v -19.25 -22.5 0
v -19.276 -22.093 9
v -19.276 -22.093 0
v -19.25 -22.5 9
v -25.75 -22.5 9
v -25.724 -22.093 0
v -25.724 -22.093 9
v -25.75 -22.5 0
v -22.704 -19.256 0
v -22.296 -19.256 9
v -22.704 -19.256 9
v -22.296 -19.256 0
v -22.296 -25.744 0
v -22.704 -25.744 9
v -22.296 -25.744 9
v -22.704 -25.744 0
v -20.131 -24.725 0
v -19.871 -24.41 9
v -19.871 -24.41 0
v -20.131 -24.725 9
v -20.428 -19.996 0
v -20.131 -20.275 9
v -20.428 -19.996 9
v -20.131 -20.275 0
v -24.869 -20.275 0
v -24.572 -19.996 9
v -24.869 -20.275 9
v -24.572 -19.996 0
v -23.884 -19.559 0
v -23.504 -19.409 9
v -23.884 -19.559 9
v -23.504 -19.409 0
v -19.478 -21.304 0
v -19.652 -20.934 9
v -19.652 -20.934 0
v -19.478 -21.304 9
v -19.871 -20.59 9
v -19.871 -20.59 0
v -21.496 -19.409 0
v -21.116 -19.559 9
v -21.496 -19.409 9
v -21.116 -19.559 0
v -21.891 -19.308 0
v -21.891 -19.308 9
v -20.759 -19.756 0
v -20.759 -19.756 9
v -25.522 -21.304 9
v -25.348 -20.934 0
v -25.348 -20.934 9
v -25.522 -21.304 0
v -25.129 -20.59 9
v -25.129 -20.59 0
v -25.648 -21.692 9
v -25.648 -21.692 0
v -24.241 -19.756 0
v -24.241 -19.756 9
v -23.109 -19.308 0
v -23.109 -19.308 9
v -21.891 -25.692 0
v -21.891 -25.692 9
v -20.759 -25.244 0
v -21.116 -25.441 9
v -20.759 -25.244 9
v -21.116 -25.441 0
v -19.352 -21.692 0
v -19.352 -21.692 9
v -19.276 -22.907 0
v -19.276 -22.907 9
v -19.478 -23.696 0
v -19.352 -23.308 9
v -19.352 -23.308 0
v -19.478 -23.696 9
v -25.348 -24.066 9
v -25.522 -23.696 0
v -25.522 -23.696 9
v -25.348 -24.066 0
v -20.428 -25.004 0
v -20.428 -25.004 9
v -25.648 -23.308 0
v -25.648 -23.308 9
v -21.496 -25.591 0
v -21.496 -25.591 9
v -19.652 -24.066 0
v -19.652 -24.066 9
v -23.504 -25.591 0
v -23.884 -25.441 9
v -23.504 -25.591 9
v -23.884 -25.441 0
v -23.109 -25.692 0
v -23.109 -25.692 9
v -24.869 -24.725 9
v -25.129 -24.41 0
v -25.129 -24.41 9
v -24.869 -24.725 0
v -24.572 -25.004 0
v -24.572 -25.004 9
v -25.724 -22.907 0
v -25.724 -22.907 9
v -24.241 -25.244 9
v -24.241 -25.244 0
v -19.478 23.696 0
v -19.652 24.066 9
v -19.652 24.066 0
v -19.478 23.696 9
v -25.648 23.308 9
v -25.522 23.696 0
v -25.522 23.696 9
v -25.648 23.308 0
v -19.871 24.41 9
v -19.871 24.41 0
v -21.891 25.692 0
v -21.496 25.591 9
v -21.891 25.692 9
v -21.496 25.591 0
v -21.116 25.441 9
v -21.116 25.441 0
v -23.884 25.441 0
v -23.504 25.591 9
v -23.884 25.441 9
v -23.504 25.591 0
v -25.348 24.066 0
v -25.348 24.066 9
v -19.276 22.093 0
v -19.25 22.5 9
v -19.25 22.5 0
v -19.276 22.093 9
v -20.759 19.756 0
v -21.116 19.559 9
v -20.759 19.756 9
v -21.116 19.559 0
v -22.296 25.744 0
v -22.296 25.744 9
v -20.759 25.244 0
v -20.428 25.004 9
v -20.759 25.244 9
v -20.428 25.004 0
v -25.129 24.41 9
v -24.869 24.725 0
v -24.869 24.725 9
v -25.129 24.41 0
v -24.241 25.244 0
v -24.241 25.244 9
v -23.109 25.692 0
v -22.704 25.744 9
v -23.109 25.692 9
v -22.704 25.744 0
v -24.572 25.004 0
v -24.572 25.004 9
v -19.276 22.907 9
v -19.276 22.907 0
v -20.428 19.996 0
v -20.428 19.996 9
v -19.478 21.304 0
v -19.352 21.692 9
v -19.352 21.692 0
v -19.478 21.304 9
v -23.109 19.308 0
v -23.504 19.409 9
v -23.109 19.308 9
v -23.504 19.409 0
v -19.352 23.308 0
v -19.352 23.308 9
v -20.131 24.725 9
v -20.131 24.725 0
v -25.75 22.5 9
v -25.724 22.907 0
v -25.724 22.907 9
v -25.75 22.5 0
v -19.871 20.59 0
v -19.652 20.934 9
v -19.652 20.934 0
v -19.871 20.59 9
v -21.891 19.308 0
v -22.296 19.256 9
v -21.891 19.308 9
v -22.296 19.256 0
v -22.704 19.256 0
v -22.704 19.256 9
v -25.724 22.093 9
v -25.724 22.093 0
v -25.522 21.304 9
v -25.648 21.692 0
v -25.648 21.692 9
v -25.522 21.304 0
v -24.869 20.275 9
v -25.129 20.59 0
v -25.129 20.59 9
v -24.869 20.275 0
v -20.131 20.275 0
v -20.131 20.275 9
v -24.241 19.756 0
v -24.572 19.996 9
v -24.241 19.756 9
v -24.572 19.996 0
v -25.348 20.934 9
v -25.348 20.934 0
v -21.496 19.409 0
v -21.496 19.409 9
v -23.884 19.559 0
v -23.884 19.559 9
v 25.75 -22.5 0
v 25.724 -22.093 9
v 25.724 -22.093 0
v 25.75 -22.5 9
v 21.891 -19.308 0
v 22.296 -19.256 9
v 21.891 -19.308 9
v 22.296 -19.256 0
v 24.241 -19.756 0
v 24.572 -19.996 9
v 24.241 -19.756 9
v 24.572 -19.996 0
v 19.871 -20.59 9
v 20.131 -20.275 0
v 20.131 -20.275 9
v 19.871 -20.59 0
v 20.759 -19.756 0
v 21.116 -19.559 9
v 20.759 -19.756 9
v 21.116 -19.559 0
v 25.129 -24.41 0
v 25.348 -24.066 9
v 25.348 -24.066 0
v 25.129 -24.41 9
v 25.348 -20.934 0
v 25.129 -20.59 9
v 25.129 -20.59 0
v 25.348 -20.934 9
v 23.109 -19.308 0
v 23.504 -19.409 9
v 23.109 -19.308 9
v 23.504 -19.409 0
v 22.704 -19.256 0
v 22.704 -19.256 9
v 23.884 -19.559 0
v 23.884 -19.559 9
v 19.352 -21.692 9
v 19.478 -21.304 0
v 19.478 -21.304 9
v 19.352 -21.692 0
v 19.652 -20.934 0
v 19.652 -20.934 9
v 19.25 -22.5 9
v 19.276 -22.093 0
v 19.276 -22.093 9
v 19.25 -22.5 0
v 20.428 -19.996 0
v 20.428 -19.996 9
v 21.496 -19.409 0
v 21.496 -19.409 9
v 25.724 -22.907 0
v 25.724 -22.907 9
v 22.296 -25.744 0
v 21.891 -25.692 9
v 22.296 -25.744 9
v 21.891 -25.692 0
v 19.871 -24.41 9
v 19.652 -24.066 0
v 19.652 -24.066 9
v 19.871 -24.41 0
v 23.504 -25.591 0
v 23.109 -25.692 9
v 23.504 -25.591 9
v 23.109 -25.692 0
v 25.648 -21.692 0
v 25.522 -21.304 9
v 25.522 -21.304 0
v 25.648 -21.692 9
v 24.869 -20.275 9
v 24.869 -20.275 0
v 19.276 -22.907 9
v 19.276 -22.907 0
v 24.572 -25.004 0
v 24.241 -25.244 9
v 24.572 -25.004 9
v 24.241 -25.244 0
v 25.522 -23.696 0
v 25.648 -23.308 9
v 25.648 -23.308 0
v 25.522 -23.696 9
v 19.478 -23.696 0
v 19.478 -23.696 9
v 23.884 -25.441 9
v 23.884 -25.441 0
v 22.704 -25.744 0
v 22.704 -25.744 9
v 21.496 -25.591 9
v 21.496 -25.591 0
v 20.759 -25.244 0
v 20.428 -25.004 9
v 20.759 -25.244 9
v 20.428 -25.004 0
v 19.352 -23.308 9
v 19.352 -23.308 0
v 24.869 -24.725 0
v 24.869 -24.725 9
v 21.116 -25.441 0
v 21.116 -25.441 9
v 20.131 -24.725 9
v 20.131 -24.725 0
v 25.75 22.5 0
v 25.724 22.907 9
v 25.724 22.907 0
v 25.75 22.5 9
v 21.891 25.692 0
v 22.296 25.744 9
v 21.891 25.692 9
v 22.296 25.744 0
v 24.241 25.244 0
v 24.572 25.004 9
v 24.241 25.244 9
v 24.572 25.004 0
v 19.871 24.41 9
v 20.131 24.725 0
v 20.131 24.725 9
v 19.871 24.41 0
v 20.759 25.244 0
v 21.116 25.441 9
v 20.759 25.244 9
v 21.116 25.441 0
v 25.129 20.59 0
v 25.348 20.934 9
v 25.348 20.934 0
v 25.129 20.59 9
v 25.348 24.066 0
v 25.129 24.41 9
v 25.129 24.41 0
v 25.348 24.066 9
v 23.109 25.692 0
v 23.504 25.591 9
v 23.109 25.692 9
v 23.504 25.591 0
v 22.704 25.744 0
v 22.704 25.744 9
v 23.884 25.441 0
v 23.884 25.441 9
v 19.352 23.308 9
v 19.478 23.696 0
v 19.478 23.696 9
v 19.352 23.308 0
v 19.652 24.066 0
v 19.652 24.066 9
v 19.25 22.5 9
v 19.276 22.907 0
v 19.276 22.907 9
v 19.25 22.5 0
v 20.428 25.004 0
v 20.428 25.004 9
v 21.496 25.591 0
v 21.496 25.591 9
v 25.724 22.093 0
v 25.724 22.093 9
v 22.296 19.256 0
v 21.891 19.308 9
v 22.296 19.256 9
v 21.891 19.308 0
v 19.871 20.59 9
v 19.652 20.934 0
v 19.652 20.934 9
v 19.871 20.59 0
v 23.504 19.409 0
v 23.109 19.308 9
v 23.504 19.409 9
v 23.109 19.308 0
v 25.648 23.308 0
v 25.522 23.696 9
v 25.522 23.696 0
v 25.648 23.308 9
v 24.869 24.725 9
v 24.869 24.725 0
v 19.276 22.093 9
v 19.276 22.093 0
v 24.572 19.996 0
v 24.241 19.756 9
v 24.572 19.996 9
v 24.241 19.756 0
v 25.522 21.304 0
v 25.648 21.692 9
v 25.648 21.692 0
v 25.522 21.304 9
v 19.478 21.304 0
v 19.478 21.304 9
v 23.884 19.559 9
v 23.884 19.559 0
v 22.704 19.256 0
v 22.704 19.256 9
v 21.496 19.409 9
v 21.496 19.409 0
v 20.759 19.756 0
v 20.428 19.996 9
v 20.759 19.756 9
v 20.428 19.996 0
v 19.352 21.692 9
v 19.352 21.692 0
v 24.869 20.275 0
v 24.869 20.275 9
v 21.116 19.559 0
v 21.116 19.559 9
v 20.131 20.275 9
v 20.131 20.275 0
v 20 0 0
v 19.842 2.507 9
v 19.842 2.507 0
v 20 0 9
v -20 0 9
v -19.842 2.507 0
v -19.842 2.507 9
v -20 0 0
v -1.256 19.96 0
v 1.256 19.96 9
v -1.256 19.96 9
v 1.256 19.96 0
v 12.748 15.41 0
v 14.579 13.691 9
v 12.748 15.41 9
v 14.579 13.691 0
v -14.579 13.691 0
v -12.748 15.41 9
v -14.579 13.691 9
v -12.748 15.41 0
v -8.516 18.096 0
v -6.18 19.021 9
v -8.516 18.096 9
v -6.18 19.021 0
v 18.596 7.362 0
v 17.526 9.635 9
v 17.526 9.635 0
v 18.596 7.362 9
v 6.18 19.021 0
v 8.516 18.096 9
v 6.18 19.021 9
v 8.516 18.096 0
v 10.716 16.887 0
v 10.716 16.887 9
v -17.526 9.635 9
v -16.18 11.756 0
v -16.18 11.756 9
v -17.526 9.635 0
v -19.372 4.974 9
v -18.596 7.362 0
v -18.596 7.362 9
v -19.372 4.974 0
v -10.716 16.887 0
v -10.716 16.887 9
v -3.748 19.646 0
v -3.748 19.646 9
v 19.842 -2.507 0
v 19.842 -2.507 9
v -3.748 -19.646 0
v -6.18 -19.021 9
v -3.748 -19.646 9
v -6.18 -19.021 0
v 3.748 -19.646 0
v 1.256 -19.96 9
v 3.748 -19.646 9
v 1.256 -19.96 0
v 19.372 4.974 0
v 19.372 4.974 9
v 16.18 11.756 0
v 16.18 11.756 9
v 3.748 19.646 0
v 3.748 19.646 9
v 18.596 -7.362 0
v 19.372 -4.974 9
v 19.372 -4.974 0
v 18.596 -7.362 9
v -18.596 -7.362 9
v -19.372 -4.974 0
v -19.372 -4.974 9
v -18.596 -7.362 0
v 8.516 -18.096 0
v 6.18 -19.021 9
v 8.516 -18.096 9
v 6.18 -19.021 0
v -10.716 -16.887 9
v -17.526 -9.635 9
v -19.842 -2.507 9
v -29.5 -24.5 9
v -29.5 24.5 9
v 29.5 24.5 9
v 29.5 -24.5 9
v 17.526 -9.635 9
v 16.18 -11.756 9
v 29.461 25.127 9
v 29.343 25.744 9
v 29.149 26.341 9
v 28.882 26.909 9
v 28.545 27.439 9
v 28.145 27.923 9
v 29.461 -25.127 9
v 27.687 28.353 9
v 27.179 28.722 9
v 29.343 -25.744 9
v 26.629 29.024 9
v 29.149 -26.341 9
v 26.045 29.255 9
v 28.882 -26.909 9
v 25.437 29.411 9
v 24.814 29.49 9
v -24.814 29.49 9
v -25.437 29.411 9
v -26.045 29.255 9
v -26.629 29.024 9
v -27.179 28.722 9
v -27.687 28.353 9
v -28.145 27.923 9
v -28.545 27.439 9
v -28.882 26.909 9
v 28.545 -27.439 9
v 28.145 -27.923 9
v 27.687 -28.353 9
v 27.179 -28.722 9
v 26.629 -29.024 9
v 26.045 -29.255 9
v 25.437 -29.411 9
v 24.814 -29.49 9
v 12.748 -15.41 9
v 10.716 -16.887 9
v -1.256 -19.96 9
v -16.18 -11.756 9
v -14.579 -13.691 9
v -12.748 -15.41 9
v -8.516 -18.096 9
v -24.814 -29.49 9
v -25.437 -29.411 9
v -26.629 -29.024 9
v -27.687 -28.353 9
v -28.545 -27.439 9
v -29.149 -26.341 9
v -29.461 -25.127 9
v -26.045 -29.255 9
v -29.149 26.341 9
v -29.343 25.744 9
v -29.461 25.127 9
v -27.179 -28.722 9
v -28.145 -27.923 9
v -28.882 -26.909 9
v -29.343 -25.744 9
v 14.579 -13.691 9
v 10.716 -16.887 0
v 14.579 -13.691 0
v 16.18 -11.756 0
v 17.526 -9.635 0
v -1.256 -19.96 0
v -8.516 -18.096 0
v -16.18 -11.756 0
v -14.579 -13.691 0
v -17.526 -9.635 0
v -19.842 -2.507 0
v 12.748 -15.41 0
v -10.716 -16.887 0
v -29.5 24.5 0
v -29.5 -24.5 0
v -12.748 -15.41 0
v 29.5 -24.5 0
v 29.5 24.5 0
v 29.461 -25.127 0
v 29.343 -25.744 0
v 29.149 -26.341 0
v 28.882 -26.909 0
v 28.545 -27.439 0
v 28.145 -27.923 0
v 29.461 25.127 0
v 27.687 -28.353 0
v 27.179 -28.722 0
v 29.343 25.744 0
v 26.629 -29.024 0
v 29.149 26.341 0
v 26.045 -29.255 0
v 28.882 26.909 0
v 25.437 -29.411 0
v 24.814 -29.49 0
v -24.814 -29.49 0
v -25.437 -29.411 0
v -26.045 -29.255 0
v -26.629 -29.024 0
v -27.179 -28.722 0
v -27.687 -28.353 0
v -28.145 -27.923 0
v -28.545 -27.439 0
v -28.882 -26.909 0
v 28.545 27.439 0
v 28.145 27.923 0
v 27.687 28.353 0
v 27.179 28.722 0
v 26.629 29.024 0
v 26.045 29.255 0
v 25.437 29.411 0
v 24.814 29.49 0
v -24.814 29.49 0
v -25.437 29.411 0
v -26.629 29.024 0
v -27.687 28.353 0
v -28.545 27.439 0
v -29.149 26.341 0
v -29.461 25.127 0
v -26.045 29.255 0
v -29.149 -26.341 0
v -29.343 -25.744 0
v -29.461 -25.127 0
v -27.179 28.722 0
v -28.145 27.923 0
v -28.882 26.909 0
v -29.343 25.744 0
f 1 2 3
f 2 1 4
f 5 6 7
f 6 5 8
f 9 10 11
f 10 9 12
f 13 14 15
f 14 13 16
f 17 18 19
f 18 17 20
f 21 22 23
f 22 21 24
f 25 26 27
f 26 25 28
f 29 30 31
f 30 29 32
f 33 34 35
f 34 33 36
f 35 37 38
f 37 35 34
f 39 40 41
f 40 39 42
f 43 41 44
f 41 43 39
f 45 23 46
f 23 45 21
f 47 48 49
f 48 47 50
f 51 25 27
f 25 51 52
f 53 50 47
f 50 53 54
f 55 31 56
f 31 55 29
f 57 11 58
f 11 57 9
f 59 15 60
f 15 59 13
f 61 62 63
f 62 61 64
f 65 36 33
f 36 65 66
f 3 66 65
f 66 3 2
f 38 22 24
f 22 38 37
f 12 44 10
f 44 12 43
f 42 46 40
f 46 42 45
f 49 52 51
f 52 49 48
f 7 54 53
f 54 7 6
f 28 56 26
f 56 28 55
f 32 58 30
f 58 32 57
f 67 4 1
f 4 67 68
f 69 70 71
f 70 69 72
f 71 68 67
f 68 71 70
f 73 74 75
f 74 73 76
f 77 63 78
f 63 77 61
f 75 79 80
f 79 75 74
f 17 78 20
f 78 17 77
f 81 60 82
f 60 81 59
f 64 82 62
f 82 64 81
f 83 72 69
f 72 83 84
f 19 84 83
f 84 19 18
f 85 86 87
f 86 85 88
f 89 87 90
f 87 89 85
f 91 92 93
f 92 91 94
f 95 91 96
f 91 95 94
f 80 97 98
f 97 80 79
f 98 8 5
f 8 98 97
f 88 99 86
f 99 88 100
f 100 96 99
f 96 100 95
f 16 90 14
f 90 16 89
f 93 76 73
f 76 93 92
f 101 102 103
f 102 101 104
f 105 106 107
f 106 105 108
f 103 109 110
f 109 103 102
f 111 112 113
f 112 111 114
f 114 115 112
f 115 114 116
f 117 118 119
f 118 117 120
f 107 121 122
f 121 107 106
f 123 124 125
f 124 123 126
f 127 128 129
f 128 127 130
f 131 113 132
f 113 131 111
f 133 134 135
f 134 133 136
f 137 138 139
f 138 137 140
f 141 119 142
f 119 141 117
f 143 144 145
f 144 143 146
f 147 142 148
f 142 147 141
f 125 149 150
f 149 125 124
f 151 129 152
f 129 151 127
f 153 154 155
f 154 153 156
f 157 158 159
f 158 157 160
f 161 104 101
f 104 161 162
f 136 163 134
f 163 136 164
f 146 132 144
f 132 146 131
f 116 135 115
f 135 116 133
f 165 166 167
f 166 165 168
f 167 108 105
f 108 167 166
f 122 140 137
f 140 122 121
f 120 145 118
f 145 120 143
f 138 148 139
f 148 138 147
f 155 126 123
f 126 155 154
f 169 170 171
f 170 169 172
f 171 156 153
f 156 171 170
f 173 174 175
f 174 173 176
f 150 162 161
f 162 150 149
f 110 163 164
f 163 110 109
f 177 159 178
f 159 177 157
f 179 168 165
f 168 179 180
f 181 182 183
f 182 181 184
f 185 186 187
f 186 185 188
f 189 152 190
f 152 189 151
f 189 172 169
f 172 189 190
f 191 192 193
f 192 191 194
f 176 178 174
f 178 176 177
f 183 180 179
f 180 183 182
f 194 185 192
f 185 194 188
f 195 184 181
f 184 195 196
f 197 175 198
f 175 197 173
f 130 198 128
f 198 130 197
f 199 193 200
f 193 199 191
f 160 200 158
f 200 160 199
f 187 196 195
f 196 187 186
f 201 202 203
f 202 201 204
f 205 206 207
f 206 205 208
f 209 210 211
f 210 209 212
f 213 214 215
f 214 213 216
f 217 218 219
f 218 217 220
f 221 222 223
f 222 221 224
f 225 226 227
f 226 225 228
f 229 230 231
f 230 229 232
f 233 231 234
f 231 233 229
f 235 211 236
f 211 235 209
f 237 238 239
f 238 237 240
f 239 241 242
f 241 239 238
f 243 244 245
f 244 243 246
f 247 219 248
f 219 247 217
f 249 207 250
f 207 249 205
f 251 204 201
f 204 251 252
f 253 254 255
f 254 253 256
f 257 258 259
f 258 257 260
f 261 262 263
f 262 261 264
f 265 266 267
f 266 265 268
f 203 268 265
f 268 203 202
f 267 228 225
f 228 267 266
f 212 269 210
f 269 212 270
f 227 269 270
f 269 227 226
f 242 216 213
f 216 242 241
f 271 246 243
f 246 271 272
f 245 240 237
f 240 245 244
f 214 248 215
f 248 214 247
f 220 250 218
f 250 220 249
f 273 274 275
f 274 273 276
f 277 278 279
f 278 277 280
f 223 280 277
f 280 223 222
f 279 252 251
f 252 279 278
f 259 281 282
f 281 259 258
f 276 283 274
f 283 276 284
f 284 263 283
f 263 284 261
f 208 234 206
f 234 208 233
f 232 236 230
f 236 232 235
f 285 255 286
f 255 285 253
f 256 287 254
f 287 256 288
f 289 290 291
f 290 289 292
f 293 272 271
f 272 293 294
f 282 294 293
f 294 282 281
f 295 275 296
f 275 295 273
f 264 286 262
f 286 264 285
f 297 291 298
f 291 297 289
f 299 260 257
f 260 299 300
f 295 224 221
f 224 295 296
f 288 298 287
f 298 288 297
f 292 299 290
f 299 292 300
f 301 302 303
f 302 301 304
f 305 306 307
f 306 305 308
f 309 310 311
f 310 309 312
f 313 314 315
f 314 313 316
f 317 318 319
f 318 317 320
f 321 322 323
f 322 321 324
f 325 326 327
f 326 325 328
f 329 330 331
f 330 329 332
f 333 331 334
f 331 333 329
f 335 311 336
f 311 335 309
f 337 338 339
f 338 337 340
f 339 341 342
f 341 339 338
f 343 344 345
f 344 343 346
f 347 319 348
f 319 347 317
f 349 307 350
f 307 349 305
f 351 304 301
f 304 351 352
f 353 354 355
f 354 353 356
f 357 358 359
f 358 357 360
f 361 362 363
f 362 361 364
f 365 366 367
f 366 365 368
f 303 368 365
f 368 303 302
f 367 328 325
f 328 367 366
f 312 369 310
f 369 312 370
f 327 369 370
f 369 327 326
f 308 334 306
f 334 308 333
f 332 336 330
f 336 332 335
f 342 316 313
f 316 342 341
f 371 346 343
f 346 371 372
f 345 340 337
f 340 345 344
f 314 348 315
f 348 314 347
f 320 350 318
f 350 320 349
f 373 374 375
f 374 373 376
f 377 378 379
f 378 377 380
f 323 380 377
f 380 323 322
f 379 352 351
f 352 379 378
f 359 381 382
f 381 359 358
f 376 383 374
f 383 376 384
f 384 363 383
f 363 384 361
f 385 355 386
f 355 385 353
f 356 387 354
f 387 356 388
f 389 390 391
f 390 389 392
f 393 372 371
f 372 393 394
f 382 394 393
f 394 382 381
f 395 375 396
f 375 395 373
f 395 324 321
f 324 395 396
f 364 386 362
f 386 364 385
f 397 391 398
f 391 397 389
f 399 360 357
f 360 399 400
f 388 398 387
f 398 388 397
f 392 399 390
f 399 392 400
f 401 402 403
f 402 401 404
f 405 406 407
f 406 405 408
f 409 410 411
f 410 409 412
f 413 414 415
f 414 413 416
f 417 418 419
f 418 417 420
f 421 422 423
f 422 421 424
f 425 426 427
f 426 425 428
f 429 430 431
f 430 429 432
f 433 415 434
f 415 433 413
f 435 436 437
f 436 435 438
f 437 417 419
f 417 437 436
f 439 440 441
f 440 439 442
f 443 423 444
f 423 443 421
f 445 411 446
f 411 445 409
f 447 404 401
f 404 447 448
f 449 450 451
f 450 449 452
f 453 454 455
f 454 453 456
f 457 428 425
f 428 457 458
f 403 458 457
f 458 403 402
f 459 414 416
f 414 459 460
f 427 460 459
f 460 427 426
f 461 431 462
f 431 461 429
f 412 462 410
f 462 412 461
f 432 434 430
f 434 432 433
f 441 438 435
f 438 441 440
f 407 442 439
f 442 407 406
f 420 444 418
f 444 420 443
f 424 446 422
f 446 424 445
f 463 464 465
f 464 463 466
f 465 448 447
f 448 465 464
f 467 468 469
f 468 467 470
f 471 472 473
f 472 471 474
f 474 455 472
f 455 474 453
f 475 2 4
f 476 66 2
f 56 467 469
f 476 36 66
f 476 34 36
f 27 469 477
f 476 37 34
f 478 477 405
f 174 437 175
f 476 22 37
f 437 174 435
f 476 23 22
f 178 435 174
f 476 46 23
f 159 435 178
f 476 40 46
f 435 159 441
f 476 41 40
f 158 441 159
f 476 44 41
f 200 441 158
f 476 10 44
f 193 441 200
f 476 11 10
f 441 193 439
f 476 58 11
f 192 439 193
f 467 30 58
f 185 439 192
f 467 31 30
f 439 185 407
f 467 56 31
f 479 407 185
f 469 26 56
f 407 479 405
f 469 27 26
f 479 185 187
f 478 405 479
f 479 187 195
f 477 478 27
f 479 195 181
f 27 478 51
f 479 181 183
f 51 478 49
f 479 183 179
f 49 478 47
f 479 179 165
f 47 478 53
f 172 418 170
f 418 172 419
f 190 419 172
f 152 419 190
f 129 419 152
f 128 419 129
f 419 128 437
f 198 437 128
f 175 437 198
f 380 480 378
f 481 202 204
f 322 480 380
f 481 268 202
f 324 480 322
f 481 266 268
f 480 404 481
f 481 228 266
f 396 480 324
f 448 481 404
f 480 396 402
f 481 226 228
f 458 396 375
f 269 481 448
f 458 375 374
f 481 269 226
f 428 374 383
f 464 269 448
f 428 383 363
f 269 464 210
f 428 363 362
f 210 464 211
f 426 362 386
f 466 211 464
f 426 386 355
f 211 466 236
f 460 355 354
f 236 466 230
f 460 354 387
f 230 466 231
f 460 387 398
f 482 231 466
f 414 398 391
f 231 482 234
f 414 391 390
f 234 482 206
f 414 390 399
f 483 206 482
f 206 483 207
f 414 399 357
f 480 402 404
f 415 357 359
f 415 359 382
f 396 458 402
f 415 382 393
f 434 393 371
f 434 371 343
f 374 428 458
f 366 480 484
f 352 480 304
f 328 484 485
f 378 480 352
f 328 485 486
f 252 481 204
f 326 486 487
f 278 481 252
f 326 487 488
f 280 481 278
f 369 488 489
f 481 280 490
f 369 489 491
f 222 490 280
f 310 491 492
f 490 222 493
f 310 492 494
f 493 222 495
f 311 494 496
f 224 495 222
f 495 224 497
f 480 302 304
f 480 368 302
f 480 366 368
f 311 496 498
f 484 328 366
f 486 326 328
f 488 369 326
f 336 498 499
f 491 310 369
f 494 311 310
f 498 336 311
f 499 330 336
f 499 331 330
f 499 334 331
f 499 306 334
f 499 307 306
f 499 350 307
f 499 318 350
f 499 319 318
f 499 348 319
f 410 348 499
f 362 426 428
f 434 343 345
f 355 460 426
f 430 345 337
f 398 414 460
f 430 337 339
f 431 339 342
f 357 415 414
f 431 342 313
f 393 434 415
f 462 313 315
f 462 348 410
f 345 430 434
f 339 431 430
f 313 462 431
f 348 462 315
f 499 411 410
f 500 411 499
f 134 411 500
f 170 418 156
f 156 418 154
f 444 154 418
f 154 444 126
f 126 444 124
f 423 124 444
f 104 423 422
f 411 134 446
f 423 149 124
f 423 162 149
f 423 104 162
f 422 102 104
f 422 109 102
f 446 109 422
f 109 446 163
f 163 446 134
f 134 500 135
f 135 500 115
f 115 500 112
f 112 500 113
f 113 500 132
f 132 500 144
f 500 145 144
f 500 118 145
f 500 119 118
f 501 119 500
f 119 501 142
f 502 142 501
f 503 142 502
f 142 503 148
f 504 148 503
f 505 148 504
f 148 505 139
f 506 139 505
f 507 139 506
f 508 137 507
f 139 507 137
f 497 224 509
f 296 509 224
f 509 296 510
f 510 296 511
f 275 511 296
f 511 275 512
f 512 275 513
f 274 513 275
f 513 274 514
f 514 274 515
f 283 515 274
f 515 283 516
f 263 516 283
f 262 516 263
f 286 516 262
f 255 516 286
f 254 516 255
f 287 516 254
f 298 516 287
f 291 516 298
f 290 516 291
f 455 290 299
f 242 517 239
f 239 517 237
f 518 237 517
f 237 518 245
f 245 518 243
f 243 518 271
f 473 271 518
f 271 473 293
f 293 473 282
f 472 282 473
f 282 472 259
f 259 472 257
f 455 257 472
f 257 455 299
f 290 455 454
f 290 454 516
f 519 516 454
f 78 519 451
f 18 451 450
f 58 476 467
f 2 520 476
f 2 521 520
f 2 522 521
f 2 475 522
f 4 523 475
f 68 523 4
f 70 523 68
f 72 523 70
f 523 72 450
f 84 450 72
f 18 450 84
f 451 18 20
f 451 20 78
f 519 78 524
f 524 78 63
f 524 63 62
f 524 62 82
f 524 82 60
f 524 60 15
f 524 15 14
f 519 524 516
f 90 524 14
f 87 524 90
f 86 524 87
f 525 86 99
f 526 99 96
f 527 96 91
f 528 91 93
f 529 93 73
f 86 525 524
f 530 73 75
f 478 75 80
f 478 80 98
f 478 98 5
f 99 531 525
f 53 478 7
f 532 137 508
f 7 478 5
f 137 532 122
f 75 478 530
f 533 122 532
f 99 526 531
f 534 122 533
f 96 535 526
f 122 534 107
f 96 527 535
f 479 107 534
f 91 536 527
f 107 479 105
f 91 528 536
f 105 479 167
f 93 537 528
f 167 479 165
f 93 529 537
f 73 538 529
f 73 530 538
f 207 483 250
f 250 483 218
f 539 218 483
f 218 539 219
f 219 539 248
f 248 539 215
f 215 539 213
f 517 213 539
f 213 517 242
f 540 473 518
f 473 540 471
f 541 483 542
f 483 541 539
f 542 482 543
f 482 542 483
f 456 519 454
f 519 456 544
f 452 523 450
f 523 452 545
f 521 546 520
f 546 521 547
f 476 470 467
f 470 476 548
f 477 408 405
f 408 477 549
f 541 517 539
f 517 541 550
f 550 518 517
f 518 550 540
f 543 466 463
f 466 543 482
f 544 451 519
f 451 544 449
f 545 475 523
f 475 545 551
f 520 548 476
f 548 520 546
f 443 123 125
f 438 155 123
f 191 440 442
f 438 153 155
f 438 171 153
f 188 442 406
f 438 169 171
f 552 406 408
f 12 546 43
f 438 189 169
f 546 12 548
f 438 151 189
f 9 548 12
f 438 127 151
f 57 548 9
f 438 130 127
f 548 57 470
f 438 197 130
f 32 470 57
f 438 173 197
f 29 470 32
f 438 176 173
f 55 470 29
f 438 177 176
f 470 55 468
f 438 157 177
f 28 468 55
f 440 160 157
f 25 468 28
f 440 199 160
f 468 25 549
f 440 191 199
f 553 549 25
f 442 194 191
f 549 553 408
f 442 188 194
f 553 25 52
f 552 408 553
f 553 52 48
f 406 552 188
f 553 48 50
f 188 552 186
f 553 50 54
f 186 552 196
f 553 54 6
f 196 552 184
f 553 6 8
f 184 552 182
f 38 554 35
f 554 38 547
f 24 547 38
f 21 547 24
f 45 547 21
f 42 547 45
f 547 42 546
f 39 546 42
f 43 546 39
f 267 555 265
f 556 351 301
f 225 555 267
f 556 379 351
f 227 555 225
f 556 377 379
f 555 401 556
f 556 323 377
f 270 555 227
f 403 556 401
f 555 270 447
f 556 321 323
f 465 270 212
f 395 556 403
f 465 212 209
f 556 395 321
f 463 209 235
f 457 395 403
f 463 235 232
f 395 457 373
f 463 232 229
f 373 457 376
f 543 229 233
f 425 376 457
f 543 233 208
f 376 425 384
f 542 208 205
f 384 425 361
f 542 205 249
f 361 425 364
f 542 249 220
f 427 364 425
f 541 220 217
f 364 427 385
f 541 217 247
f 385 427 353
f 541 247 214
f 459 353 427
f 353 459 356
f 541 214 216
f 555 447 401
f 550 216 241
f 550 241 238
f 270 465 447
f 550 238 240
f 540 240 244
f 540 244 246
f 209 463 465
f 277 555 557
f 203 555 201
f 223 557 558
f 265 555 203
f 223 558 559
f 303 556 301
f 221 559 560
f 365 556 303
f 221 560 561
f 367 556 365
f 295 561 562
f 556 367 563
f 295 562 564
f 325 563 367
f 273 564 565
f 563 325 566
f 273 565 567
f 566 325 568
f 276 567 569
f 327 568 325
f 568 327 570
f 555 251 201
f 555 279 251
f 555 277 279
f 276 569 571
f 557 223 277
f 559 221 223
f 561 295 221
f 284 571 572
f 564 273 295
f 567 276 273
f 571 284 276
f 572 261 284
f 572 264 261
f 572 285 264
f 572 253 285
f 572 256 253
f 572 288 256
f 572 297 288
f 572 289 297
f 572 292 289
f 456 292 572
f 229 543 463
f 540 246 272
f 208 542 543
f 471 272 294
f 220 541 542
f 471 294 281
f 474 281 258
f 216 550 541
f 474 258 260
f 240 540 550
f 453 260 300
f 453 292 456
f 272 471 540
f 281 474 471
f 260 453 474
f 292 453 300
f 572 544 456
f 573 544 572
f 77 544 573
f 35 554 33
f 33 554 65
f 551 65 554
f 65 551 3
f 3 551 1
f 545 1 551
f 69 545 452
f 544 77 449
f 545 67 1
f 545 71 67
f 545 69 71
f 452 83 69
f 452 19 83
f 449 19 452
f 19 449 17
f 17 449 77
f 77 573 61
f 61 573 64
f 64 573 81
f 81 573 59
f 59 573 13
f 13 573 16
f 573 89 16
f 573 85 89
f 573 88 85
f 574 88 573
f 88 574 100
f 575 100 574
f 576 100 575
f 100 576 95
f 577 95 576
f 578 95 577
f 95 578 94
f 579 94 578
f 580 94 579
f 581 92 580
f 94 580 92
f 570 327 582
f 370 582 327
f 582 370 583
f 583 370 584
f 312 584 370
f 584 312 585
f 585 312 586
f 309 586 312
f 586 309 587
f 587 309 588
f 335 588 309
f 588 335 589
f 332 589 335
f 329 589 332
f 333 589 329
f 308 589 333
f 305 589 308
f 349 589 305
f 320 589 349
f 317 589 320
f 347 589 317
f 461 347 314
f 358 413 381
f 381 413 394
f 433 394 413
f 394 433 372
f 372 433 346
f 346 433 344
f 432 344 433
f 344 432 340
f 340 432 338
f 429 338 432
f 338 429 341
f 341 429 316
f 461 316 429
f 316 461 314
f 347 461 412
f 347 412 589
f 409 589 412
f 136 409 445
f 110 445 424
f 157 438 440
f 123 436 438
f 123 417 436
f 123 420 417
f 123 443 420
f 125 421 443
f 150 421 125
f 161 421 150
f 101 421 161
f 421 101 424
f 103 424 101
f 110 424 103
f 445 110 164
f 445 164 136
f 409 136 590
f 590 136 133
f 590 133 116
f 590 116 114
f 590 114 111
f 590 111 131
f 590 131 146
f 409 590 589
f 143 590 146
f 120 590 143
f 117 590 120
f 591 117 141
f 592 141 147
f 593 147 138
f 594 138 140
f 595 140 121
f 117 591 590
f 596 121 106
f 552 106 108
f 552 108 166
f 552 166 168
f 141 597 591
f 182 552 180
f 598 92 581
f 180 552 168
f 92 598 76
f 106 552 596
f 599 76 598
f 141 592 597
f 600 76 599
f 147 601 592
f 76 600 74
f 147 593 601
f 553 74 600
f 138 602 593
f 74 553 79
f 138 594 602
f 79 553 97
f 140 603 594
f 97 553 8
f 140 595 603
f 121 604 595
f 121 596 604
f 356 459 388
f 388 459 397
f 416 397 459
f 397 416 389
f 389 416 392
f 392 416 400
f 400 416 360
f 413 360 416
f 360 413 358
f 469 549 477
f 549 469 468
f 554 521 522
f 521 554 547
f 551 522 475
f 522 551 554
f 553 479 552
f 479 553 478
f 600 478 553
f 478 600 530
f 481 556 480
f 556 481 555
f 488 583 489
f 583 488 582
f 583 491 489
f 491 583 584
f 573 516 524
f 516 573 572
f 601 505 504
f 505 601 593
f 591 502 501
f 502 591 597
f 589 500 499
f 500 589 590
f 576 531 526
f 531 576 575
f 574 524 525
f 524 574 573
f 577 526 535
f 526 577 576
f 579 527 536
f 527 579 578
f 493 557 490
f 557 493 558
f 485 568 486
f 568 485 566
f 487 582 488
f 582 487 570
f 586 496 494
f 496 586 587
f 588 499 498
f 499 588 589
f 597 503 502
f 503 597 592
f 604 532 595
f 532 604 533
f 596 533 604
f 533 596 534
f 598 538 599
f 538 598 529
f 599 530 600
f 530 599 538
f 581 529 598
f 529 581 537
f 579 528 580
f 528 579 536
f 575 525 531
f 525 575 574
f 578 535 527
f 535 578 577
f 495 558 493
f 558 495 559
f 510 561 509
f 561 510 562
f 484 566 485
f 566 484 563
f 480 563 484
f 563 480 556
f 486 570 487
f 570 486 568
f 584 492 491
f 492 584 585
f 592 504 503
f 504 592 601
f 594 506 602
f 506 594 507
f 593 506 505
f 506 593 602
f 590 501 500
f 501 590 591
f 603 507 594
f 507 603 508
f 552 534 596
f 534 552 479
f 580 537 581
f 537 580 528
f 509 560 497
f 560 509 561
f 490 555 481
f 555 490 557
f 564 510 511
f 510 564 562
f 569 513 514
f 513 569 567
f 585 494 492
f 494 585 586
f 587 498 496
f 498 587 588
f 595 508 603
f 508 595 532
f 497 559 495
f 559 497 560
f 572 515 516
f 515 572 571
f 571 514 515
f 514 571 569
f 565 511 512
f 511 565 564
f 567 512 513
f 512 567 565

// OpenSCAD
$fn = 50;


difference() {
	union() {
		hull() {
			translate(v = [-24.5000000000, 24.5000000000, 0]) {
				cylinder(h = 9, r = 5);
			}
			translate(v = [24.5000000000, 24.5000000000, 0]) {
				cylinder(h = 9, r = 5);
			}
			translate(v = [-24.5000000000, -24.5000000000, 0]) {
				cylinder(h = 9, r = 5);
			}
			translate(v = [24.5000000000, -24.5000000000, 0]) {
				cylinder(h = 9, r = 5);
			}
		}
	}
	union() {
		#translate(v = [-22.5000000000, -22.5000000000, -100.0000000000]) {
			cylinder(h = 200, r = 3.2500000000);
		}
		#translate(v = [-22.5000000000, 22.5000000000, -100.0000000000]) {
			cylinder(h = 200, r = 3.2500000000);
		}
		#translate(v = [22.5000000000, -22.5000000000, -100.0000000000]) {
			cylinder(h = 200, r = 3.2500000000);
		}
		#translate(v = [22.5000000000, 22.5000000000, -100.0000000000]) {
			cylinder(h = 200, r = 3.2500000000);
		}
		#cylinder(h = 9, r = 20.0000000000);
	}
}
